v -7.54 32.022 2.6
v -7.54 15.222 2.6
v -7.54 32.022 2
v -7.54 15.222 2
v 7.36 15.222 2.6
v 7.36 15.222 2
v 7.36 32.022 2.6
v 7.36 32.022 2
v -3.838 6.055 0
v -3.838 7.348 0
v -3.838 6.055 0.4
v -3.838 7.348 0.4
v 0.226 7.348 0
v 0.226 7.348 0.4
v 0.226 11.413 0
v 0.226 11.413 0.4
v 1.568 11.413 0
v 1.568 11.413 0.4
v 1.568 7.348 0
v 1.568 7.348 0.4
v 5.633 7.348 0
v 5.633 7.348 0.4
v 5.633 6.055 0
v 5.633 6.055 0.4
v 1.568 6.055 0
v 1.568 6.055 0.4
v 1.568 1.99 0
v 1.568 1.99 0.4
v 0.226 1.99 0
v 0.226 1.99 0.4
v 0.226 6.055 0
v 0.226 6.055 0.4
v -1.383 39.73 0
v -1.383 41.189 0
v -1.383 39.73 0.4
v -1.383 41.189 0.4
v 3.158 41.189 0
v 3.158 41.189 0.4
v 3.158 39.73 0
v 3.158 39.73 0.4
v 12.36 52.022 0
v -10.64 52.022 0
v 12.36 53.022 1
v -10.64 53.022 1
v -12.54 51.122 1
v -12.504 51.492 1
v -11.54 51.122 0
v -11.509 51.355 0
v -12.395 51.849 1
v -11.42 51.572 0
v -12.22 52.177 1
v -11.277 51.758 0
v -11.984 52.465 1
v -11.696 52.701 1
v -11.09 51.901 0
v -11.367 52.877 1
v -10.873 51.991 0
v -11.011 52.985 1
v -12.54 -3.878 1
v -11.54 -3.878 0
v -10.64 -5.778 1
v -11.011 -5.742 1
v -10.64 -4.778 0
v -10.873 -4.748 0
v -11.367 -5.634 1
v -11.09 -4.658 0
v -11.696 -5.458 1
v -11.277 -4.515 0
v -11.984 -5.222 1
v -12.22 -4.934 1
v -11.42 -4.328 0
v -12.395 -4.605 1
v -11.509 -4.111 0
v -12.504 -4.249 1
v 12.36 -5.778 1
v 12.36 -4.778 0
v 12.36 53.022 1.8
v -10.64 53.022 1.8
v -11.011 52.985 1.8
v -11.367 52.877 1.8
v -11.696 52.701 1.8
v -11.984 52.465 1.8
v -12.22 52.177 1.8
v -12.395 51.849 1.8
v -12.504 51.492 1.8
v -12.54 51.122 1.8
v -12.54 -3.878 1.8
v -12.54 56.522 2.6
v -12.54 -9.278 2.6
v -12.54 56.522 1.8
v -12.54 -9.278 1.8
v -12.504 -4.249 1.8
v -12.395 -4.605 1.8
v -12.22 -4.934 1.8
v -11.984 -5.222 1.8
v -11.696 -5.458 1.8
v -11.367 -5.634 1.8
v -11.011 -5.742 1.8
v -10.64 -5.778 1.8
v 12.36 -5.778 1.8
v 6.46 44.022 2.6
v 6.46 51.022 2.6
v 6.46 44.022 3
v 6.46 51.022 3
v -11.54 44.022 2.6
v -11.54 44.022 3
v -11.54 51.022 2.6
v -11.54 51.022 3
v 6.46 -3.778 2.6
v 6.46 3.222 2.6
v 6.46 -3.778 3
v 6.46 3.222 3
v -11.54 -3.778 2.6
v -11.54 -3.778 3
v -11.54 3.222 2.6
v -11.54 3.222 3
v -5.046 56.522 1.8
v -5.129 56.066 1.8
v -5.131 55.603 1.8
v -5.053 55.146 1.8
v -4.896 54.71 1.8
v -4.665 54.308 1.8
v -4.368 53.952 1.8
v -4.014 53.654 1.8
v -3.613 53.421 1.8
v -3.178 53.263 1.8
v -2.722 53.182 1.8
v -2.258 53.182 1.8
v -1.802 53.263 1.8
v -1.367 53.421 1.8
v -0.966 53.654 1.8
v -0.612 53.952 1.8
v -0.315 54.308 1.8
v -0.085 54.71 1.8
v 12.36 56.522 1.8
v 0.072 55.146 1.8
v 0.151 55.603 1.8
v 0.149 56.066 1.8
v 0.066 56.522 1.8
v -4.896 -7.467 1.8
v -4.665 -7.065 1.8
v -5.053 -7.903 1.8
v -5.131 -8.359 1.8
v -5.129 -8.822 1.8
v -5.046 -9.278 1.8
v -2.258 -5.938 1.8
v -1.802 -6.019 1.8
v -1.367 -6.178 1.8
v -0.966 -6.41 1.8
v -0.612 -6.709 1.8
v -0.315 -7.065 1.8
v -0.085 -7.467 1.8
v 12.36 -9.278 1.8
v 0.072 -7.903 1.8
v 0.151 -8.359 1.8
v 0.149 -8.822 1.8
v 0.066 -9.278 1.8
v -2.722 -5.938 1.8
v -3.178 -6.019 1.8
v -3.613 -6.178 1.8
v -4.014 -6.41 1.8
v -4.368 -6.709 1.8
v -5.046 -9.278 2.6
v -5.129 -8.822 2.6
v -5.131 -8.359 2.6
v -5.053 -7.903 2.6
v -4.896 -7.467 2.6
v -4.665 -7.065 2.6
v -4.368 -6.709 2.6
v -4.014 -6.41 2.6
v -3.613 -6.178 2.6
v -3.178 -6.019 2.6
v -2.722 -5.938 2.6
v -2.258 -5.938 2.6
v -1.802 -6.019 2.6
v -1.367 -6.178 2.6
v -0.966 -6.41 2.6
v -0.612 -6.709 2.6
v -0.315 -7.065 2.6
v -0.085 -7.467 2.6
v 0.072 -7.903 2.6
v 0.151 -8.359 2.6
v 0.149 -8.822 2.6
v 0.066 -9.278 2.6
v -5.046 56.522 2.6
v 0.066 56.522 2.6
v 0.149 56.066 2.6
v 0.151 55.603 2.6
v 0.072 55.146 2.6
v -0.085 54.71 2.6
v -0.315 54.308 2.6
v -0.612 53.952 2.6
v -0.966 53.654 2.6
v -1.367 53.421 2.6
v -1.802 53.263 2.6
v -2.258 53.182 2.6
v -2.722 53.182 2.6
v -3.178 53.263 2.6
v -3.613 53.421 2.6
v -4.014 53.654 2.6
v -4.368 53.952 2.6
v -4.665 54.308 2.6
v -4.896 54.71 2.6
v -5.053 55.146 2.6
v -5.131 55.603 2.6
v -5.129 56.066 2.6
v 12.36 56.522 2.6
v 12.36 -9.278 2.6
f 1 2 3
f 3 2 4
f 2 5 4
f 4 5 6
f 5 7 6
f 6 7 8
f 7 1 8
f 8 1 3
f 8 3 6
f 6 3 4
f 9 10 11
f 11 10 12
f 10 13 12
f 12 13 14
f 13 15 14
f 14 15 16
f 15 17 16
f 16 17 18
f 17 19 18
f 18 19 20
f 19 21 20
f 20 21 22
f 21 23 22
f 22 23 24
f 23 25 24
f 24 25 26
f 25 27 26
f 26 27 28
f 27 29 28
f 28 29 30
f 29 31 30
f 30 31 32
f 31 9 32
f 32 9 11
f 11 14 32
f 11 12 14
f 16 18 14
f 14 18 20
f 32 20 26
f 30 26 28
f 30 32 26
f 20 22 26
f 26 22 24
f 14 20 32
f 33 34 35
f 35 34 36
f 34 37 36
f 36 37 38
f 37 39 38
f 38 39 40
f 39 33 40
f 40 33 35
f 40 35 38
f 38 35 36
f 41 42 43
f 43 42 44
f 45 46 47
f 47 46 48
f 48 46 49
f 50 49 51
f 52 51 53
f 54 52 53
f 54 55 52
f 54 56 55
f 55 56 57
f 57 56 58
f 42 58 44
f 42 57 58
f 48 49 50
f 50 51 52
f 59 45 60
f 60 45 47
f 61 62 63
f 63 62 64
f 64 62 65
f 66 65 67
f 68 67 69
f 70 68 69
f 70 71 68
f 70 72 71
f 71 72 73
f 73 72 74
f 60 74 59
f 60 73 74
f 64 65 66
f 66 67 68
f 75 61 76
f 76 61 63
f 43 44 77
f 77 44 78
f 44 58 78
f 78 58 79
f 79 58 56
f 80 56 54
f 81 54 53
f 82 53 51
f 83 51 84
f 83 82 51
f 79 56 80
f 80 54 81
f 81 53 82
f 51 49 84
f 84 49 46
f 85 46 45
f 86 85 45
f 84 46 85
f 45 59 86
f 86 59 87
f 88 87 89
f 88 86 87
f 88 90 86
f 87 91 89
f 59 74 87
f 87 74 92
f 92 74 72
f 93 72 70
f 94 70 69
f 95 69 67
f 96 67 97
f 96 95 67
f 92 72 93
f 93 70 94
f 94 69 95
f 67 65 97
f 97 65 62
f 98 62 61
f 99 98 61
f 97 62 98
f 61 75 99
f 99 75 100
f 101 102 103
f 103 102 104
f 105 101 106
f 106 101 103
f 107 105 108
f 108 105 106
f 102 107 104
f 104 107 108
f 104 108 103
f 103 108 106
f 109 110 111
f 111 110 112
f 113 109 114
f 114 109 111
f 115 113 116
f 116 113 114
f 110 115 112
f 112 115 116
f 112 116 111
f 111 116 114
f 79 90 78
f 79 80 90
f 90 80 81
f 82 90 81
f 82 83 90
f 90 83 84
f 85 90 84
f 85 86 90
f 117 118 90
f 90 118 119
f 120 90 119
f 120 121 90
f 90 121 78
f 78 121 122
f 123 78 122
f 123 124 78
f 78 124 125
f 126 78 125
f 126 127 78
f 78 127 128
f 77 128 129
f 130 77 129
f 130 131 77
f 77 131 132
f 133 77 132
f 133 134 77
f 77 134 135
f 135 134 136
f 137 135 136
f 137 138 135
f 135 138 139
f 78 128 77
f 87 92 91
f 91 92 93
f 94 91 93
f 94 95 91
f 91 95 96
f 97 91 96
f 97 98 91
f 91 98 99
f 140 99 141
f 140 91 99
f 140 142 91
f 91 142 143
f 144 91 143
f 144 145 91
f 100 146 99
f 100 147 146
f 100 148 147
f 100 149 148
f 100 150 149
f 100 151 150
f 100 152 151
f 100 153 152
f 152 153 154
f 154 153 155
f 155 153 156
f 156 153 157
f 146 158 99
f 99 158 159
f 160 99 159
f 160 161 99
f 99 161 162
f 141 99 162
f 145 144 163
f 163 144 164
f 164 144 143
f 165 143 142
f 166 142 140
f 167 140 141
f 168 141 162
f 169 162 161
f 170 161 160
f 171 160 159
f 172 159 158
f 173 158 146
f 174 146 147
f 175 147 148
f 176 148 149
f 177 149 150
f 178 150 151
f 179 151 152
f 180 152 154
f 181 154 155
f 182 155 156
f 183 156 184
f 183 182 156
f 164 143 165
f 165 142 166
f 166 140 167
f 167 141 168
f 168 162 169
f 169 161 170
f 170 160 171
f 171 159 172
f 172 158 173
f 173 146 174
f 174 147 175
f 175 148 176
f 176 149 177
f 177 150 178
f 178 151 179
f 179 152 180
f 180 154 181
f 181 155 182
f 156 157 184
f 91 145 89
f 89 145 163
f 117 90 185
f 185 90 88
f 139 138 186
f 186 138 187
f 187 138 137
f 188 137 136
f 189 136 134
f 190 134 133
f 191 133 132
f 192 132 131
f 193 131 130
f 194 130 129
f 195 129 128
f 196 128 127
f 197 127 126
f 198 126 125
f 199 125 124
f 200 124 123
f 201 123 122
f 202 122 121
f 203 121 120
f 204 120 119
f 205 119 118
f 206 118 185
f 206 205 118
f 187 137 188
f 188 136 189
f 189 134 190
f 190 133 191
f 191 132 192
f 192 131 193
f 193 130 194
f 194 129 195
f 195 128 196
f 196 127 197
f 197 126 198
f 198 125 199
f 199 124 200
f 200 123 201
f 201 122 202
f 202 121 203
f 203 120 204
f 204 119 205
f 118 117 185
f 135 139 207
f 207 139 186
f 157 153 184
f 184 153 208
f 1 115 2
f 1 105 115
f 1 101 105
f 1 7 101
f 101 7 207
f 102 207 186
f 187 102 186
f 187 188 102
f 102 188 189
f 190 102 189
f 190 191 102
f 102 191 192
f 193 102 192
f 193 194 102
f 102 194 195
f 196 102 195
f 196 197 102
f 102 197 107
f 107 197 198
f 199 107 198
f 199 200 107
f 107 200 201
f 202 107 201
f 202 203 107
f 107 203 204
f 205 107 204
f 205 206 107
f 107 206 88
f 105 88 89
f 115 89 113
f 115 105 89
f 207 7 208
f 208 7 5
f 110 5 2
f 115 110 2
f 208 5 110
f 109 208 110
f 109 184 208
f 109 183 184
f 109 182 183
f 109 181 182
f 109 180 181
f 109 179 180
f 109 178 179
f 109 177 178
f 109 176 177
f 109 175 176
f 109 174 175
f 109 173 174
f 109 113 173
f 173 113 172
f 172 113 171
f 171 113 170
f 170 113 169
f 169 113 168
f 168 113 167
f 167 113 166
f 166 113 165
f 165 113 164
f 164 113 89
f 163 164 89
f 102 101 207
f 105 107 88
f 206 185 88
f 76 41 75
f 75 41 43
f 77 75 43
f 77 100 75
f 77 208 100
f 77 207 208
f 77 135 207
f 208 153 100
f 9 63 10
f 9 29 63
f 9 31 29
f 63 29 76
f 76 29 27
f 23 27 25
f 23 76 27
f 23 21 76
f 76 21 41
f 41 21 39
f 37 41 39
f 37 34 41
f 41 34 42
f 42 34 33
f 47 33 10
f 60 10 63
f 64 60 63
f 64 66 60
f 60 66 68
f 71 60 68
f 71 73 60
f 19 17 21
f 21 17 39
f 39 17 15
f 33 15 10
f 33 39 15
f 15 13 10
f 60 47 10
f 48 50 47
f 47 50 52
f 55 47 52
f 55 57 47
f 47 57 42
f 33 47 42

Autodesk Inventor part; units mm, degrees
ref_plane "YZ Plane" through (0, 0, 0) normal (1, 0, 0) x (0, 1, 0)
ref_plane "XZ Plane" through (0, 0, 0) normal (0, 1, 0) x (-1, 0, 0)
ref_plane "XY Plane" through (0, 0, 0) normal (0, 0, 1) x (1, 0, 0)
sketch "Skizze1" plane through (0, 0, 0) normal (0, 0, 1) x (1, 0, 0)
  arc A0 (-10.6401, 53.1217) -> (-12.6401, 51.1217) centre (-10.6401, 51.1217) ccw construction
  line L0 (-12.6401, 51.1217) -> (-12.6401, -3.8783) construction
  arc A1 (-12.6401, -3.8783) -> (-10.6401, -5.8783) centre (-10.6401, -3.8783) ccw construction
  line L1 (-10.6401, -5.8783) -> (35.6599, -5.8783) construction
  arc A2 (35.6599, -5.8783) -> (37.6599, -3.8783) centre (35.6599, -3.8783) ccw construction
  line L2 (37.6599, -3.8783) -> (37.6599, 51.1217) construction
  arc A3 (37.6599, 51.1217) -> (35.6599, 53.1217) centre (35.6599, 51.1217) ccw construction
  line L3 (35.6599, 53.1217) -> (-10.6401, 53.1217) construction
  arc A4 (-24.2401, -8.4283) -> (-19.5401, -13.1283) centre (-19.5401, -8.4283) ccw construction
  line L4 (-24.2401, 55.6717) -> (-24.2401, -8.4283) construction
  arc A5 (-19.5401, 60.3717) -> (-24.2401, 55.6717) centre (-19.5401, 55.6717) ccw construction
  line L5 (44.5599, 60.3717) -> (-19.5401, 60.3717) construction
  arc A6 (49.2599, 55.6717) -> (44.5599, 60.3717) centre (44.5599, 55.6717) ccw construction
  line L6 (49.2599, -8.4283) -> (49.2599, 55.6717) construction
  arc A7 (44.5599, -13.1283) -> (49.2599, -8.4283) centre (44.5599, -8.4283) ccw construction
  line L7 (-19.5401, -13.1283) -> (44.5599, -13.1283) construction
  line L8 (35.6599, -5.7783) -> (-10.6401, -5.7783)
  arc A8 (-12.5401, -3.8783) -> (-10.6401, -5.7783) centre (-10.6401, -3.8783) ccw
  line L9 (-12.5401, -3.8783) -> (-12.5401, 51.1217)
  arc A9 (-10.6401, 53.0217) -> (-12.5401, 51.1217) centre (-10.6401, 51.1217) ccw
  line L10 (-10.6401, 53.0217) -> (35.6599, 53.0217)
  arc A10 (37.5599, 51.1217) -> (35.6599, 53.0217) centre (35.6599, 51.1217) ccw
  line L11 (37.5599, 51.1217) -> (37.5599, -3.8783)
  arc A11 (35.6599, -5.7783) -> (37.5599, -3.8783) centre (35.6599, -3.8783) ccw
  line L12 (12.5099, -5.7783) -> (12.5099, 53.0217) construction
  line L13 (12.3599, 53.0217) -> (12.3599, -5.7783)
  point P0 (0, 0)
  dimension "d0" = 0.1
  dimension "d1" = 24.9
extrude "Extrusion1" add sketch "Skizze1" along normal blind 1.8 contours L8 A8 L9 A9 L10 L13
sketch "Skizze2" plane through (0, 0, 1.8) normal (0, 0, 1) x (1, 0, 0)
  line L0 (12.3599, 56.5217) -> (-12.5401, 56.5217)
  line L1 (-12.5401, 56.5217) -> (-12.5401, -9.2783)
  line L2 (-12.5401, -9.2783) -> (12.3599, -9.2783)
  line L3 (12.3599, -9.2783) -> (12.3599, 56.5217)
  line L4 (-10.6401, -5.7783) -> (12.3599, -5.7783) projected
  line L5 (12.3599, 53.0217) -> (-10.6401, 53.0217) projected
  line L6 (12.3599, -5.7783) -> (12.3599, 53.0217) projected
  line L7 (-12.5401, 51.1217) -> (-12.5401, -3.8783) projected
  arc A0 (-0.5286, -10.1283) -> (-4.4516, -10.1283) centre (-2.4901, -8.5783) ccw projected
  arc A1 (-4.3683, 57.4717) -> (-0.612, 57.4717) centre (-2.4901, 55.8217) ccw projected
  circle A2 centre (-2.4901, -8.5783) radius 2.65 construction
  arc A3 (0.0658, -9.2783) -> (-5.046, -9.2783) centre (-2.4901, -8.5783) ccw
  circle A4 centre (-2.4901, 55.8217) radius 2.65 construction
  arc A5 (-5.046, 56.5217) -> (0.0658, 56.5217) centre (-2.4901, 55.8217) ccw
  point P0 (0, 0)
  dimension "d4" = 3.5
  dimension "d5" = 3.5
  dimension "d30" = 2.5
  dimension "d31" = 5.3
  dimension "d32" = 2.5
  dimension "d33" = 5.3
extrude "Extrusion2" add sketch "Skizze2" along normal blind 0.8 contours L3 L2 A3 L1 L0 A5
sketch "Skizze3" plane through (0, 0, 2.6) normal (0, 0, 1) x (1, 0, 0)
  line L0 (-11.5401, 51.0217) -> (6.4599, 51.0217)
  line L1 (6.4599, 51.0217) -> (6.4599, 44.0217)
  line L2 (6.4599, 44.0217) -> (-11.5401, 44.0217)
  line L3 (-11.5401, 44.0217) -> (-11.5401, 51.0217)
  line L4 (-11.5401, 3.2217) -> (6.4599, 3.2217)
  line L5 (6.4599, 3.2217) -> (6.4599, -3.7783)
  line L6 (6.4599, -3.7783) -> (-11.5401, -3.7783)
  line L7 (-11.5401, -3.7783) -> (-11.5401, 3.2217)
  line L8 (12.3599, 56.5217) -> (-12.5401, 56.5217) projected
  line L9 (-12.5401, -9.2783) -> (12.3599, -9.2783) projected
  line L10 (-12.5401, -3.8783) -> (-12.5401, -9.2783) projected
  point P0 (0, 0)
  dimension "d8" = 18
  dimension "d9" = 18
  dimension "d10" = 7
  dimension "d11" = 7
  dimension "d12" = 5.5
  dimension "d13" = 5.5
  dimension "d14" = 1
extrude "Extrusion3" add sketch "Skizze3" along normal blind 0.4
chamfer "Fase1" distance 1 angle 45 5 edges at (0.8599, 53.0217, 0) (-11.9836, 52.4652, 0) (-12.5401, 23.6217, 0) (-11.9836, -5.2218, 0) (0.8599, -5.7783, 0)
sketch "Skizze4" plane through (0, 0, 0) normal (0, 0, -1) x (-1, 0, 0)
  line L0 (10.6401, -4.7783) -> (-12.3599, -4.7783) construction
  line L1 (-12.3599, 52.0217) -> (10.6401, 52.0217) construction
  line L2 (-6.9071, 11.4129) -> (4.4149, 11.4129) construction
  line L3 (4.4149, 11.4129) -> (4.4149, 1.8512) construction
  line L4 (4.4149, 1.8512) -> (-6.9071, 1.8512) construction
  line L5 (-6.9071, 1.8512) -> (-6.9071, 11.4129) construction
  line L6 (-3.8878, 41.1888) -> (4.1122, 41.1888) construction
  line L7 (4.1122, 41.1888) -> (4.1122, 36.9997) construction
  line L8 (4.1122, 36.9997) -> (-3.8878, 36.9997) construction
  line L9 (-3.8878, 36.9997) -> (-3.8878, 41.1888) construction
  line L10 (11.5401, 51.1217) -> (11.5401, -3.8783) construction
  line L11 (11.5401, 40.0217) -> (-12.3599, 40.0217) construction
  line L12 (11.5401, 7.2217) -> (-12.3599, 7.2217) construction
  line L13 (-12.3599, -4.7783) -> (-12.3599, 52.0217) construction
  line L14 (-0.8599, -4.7783) -> (-0.8599, 52.0217) construction
  line L15 (3.8385, 6.0547) -> (-0.2263, 6.0547)
  line L16 (-0.2263, 6.0547) -> (-0.2263, 1.9899)
  line L17 (-0.2263, 1.9899) -> (-1.5683, 1.9899)
  line L18 (-1.5683, 1.9899) -> (-1.5683, 6.0547)
  line L19 (-1.5683, 6.0547) -> (-5.6332, 6.0547)
  line L20 (-5.6332, 6.0547) -> (-5.6332, 7.348)
  line L21 (-5.6332, 7.348) -> (-1.5683, 7.348)
  line L22 (-1.5683, 7.348) -> (-1.5683, 11.4129)
  line L23 (-1.5683, 11.4129) -> (-0.2263, 11.4129)
  line L24 (-0.2263, 11.4129) -> (-0.2263, 7.348)
  line L25 (-0.2263, 7.348) -> (3.8385, 7.348)
  line L26 (3.8385, 7.348) -> (3.8385, 6.0547)
  line L27 (1.3829, 39.7301) -> (-3.1585, 39.7301)
  line L28 (-3.1585, 39.7301) -> (-3.1585, 41.1888)
  line L29 (-3.1585, 41.1888) -> (1.3829, 41.1888)
  line L30 (1.3829, 41.1888) -> (1.3829, 39.7301)
  point P0 (0, 0)
  dimension "d20" = 12
  dimension "d21" = 12
extrude "Extrusion4" cut sketch "Skizze4" against normal blind 0.4
sketch "Skizze5" plane through (0, 0, 2.6) normal (0, 0, 1) x (1, 0, 0)
  line L0 (7.3599, 32.0217) -> (-7.5401, 32.0217)
  line L1 (-7.5401, 32.0217) -> (-7.5401, 15.2217)
  line L2 (-7.5401, 15.2217) -> (7.3599, 15.2217)
  line L3 (7.3599, 15.2217) -> (7.3599, 32.0217)
  line L4 (6.4599, 44.0217) -> (-11.5401, 44.0217) projected
  line L5 (6.4599, 3.2217) -> (-11.5401, 3.2217) projected
  line L6 (-12.5401, 56.5217) -> (-12.5401, -9.2783) projected
  line L7 (12.3599, -9.2783) -> (12.3599, 56.5217) projected
  point P0 (0, 0)
  dimension "d24" = 12
  dimension "d25" = 12
  dimension "d26" = 5
  dimension "d27" = 5
extrude "Extrusion5" cut sketch "Skizze5" against normal blind 0.6
equation "\"d5\" = d4"
equation "\"d9\" = d8"
equation "\"d13\" = d12"
properties part number "Button"
